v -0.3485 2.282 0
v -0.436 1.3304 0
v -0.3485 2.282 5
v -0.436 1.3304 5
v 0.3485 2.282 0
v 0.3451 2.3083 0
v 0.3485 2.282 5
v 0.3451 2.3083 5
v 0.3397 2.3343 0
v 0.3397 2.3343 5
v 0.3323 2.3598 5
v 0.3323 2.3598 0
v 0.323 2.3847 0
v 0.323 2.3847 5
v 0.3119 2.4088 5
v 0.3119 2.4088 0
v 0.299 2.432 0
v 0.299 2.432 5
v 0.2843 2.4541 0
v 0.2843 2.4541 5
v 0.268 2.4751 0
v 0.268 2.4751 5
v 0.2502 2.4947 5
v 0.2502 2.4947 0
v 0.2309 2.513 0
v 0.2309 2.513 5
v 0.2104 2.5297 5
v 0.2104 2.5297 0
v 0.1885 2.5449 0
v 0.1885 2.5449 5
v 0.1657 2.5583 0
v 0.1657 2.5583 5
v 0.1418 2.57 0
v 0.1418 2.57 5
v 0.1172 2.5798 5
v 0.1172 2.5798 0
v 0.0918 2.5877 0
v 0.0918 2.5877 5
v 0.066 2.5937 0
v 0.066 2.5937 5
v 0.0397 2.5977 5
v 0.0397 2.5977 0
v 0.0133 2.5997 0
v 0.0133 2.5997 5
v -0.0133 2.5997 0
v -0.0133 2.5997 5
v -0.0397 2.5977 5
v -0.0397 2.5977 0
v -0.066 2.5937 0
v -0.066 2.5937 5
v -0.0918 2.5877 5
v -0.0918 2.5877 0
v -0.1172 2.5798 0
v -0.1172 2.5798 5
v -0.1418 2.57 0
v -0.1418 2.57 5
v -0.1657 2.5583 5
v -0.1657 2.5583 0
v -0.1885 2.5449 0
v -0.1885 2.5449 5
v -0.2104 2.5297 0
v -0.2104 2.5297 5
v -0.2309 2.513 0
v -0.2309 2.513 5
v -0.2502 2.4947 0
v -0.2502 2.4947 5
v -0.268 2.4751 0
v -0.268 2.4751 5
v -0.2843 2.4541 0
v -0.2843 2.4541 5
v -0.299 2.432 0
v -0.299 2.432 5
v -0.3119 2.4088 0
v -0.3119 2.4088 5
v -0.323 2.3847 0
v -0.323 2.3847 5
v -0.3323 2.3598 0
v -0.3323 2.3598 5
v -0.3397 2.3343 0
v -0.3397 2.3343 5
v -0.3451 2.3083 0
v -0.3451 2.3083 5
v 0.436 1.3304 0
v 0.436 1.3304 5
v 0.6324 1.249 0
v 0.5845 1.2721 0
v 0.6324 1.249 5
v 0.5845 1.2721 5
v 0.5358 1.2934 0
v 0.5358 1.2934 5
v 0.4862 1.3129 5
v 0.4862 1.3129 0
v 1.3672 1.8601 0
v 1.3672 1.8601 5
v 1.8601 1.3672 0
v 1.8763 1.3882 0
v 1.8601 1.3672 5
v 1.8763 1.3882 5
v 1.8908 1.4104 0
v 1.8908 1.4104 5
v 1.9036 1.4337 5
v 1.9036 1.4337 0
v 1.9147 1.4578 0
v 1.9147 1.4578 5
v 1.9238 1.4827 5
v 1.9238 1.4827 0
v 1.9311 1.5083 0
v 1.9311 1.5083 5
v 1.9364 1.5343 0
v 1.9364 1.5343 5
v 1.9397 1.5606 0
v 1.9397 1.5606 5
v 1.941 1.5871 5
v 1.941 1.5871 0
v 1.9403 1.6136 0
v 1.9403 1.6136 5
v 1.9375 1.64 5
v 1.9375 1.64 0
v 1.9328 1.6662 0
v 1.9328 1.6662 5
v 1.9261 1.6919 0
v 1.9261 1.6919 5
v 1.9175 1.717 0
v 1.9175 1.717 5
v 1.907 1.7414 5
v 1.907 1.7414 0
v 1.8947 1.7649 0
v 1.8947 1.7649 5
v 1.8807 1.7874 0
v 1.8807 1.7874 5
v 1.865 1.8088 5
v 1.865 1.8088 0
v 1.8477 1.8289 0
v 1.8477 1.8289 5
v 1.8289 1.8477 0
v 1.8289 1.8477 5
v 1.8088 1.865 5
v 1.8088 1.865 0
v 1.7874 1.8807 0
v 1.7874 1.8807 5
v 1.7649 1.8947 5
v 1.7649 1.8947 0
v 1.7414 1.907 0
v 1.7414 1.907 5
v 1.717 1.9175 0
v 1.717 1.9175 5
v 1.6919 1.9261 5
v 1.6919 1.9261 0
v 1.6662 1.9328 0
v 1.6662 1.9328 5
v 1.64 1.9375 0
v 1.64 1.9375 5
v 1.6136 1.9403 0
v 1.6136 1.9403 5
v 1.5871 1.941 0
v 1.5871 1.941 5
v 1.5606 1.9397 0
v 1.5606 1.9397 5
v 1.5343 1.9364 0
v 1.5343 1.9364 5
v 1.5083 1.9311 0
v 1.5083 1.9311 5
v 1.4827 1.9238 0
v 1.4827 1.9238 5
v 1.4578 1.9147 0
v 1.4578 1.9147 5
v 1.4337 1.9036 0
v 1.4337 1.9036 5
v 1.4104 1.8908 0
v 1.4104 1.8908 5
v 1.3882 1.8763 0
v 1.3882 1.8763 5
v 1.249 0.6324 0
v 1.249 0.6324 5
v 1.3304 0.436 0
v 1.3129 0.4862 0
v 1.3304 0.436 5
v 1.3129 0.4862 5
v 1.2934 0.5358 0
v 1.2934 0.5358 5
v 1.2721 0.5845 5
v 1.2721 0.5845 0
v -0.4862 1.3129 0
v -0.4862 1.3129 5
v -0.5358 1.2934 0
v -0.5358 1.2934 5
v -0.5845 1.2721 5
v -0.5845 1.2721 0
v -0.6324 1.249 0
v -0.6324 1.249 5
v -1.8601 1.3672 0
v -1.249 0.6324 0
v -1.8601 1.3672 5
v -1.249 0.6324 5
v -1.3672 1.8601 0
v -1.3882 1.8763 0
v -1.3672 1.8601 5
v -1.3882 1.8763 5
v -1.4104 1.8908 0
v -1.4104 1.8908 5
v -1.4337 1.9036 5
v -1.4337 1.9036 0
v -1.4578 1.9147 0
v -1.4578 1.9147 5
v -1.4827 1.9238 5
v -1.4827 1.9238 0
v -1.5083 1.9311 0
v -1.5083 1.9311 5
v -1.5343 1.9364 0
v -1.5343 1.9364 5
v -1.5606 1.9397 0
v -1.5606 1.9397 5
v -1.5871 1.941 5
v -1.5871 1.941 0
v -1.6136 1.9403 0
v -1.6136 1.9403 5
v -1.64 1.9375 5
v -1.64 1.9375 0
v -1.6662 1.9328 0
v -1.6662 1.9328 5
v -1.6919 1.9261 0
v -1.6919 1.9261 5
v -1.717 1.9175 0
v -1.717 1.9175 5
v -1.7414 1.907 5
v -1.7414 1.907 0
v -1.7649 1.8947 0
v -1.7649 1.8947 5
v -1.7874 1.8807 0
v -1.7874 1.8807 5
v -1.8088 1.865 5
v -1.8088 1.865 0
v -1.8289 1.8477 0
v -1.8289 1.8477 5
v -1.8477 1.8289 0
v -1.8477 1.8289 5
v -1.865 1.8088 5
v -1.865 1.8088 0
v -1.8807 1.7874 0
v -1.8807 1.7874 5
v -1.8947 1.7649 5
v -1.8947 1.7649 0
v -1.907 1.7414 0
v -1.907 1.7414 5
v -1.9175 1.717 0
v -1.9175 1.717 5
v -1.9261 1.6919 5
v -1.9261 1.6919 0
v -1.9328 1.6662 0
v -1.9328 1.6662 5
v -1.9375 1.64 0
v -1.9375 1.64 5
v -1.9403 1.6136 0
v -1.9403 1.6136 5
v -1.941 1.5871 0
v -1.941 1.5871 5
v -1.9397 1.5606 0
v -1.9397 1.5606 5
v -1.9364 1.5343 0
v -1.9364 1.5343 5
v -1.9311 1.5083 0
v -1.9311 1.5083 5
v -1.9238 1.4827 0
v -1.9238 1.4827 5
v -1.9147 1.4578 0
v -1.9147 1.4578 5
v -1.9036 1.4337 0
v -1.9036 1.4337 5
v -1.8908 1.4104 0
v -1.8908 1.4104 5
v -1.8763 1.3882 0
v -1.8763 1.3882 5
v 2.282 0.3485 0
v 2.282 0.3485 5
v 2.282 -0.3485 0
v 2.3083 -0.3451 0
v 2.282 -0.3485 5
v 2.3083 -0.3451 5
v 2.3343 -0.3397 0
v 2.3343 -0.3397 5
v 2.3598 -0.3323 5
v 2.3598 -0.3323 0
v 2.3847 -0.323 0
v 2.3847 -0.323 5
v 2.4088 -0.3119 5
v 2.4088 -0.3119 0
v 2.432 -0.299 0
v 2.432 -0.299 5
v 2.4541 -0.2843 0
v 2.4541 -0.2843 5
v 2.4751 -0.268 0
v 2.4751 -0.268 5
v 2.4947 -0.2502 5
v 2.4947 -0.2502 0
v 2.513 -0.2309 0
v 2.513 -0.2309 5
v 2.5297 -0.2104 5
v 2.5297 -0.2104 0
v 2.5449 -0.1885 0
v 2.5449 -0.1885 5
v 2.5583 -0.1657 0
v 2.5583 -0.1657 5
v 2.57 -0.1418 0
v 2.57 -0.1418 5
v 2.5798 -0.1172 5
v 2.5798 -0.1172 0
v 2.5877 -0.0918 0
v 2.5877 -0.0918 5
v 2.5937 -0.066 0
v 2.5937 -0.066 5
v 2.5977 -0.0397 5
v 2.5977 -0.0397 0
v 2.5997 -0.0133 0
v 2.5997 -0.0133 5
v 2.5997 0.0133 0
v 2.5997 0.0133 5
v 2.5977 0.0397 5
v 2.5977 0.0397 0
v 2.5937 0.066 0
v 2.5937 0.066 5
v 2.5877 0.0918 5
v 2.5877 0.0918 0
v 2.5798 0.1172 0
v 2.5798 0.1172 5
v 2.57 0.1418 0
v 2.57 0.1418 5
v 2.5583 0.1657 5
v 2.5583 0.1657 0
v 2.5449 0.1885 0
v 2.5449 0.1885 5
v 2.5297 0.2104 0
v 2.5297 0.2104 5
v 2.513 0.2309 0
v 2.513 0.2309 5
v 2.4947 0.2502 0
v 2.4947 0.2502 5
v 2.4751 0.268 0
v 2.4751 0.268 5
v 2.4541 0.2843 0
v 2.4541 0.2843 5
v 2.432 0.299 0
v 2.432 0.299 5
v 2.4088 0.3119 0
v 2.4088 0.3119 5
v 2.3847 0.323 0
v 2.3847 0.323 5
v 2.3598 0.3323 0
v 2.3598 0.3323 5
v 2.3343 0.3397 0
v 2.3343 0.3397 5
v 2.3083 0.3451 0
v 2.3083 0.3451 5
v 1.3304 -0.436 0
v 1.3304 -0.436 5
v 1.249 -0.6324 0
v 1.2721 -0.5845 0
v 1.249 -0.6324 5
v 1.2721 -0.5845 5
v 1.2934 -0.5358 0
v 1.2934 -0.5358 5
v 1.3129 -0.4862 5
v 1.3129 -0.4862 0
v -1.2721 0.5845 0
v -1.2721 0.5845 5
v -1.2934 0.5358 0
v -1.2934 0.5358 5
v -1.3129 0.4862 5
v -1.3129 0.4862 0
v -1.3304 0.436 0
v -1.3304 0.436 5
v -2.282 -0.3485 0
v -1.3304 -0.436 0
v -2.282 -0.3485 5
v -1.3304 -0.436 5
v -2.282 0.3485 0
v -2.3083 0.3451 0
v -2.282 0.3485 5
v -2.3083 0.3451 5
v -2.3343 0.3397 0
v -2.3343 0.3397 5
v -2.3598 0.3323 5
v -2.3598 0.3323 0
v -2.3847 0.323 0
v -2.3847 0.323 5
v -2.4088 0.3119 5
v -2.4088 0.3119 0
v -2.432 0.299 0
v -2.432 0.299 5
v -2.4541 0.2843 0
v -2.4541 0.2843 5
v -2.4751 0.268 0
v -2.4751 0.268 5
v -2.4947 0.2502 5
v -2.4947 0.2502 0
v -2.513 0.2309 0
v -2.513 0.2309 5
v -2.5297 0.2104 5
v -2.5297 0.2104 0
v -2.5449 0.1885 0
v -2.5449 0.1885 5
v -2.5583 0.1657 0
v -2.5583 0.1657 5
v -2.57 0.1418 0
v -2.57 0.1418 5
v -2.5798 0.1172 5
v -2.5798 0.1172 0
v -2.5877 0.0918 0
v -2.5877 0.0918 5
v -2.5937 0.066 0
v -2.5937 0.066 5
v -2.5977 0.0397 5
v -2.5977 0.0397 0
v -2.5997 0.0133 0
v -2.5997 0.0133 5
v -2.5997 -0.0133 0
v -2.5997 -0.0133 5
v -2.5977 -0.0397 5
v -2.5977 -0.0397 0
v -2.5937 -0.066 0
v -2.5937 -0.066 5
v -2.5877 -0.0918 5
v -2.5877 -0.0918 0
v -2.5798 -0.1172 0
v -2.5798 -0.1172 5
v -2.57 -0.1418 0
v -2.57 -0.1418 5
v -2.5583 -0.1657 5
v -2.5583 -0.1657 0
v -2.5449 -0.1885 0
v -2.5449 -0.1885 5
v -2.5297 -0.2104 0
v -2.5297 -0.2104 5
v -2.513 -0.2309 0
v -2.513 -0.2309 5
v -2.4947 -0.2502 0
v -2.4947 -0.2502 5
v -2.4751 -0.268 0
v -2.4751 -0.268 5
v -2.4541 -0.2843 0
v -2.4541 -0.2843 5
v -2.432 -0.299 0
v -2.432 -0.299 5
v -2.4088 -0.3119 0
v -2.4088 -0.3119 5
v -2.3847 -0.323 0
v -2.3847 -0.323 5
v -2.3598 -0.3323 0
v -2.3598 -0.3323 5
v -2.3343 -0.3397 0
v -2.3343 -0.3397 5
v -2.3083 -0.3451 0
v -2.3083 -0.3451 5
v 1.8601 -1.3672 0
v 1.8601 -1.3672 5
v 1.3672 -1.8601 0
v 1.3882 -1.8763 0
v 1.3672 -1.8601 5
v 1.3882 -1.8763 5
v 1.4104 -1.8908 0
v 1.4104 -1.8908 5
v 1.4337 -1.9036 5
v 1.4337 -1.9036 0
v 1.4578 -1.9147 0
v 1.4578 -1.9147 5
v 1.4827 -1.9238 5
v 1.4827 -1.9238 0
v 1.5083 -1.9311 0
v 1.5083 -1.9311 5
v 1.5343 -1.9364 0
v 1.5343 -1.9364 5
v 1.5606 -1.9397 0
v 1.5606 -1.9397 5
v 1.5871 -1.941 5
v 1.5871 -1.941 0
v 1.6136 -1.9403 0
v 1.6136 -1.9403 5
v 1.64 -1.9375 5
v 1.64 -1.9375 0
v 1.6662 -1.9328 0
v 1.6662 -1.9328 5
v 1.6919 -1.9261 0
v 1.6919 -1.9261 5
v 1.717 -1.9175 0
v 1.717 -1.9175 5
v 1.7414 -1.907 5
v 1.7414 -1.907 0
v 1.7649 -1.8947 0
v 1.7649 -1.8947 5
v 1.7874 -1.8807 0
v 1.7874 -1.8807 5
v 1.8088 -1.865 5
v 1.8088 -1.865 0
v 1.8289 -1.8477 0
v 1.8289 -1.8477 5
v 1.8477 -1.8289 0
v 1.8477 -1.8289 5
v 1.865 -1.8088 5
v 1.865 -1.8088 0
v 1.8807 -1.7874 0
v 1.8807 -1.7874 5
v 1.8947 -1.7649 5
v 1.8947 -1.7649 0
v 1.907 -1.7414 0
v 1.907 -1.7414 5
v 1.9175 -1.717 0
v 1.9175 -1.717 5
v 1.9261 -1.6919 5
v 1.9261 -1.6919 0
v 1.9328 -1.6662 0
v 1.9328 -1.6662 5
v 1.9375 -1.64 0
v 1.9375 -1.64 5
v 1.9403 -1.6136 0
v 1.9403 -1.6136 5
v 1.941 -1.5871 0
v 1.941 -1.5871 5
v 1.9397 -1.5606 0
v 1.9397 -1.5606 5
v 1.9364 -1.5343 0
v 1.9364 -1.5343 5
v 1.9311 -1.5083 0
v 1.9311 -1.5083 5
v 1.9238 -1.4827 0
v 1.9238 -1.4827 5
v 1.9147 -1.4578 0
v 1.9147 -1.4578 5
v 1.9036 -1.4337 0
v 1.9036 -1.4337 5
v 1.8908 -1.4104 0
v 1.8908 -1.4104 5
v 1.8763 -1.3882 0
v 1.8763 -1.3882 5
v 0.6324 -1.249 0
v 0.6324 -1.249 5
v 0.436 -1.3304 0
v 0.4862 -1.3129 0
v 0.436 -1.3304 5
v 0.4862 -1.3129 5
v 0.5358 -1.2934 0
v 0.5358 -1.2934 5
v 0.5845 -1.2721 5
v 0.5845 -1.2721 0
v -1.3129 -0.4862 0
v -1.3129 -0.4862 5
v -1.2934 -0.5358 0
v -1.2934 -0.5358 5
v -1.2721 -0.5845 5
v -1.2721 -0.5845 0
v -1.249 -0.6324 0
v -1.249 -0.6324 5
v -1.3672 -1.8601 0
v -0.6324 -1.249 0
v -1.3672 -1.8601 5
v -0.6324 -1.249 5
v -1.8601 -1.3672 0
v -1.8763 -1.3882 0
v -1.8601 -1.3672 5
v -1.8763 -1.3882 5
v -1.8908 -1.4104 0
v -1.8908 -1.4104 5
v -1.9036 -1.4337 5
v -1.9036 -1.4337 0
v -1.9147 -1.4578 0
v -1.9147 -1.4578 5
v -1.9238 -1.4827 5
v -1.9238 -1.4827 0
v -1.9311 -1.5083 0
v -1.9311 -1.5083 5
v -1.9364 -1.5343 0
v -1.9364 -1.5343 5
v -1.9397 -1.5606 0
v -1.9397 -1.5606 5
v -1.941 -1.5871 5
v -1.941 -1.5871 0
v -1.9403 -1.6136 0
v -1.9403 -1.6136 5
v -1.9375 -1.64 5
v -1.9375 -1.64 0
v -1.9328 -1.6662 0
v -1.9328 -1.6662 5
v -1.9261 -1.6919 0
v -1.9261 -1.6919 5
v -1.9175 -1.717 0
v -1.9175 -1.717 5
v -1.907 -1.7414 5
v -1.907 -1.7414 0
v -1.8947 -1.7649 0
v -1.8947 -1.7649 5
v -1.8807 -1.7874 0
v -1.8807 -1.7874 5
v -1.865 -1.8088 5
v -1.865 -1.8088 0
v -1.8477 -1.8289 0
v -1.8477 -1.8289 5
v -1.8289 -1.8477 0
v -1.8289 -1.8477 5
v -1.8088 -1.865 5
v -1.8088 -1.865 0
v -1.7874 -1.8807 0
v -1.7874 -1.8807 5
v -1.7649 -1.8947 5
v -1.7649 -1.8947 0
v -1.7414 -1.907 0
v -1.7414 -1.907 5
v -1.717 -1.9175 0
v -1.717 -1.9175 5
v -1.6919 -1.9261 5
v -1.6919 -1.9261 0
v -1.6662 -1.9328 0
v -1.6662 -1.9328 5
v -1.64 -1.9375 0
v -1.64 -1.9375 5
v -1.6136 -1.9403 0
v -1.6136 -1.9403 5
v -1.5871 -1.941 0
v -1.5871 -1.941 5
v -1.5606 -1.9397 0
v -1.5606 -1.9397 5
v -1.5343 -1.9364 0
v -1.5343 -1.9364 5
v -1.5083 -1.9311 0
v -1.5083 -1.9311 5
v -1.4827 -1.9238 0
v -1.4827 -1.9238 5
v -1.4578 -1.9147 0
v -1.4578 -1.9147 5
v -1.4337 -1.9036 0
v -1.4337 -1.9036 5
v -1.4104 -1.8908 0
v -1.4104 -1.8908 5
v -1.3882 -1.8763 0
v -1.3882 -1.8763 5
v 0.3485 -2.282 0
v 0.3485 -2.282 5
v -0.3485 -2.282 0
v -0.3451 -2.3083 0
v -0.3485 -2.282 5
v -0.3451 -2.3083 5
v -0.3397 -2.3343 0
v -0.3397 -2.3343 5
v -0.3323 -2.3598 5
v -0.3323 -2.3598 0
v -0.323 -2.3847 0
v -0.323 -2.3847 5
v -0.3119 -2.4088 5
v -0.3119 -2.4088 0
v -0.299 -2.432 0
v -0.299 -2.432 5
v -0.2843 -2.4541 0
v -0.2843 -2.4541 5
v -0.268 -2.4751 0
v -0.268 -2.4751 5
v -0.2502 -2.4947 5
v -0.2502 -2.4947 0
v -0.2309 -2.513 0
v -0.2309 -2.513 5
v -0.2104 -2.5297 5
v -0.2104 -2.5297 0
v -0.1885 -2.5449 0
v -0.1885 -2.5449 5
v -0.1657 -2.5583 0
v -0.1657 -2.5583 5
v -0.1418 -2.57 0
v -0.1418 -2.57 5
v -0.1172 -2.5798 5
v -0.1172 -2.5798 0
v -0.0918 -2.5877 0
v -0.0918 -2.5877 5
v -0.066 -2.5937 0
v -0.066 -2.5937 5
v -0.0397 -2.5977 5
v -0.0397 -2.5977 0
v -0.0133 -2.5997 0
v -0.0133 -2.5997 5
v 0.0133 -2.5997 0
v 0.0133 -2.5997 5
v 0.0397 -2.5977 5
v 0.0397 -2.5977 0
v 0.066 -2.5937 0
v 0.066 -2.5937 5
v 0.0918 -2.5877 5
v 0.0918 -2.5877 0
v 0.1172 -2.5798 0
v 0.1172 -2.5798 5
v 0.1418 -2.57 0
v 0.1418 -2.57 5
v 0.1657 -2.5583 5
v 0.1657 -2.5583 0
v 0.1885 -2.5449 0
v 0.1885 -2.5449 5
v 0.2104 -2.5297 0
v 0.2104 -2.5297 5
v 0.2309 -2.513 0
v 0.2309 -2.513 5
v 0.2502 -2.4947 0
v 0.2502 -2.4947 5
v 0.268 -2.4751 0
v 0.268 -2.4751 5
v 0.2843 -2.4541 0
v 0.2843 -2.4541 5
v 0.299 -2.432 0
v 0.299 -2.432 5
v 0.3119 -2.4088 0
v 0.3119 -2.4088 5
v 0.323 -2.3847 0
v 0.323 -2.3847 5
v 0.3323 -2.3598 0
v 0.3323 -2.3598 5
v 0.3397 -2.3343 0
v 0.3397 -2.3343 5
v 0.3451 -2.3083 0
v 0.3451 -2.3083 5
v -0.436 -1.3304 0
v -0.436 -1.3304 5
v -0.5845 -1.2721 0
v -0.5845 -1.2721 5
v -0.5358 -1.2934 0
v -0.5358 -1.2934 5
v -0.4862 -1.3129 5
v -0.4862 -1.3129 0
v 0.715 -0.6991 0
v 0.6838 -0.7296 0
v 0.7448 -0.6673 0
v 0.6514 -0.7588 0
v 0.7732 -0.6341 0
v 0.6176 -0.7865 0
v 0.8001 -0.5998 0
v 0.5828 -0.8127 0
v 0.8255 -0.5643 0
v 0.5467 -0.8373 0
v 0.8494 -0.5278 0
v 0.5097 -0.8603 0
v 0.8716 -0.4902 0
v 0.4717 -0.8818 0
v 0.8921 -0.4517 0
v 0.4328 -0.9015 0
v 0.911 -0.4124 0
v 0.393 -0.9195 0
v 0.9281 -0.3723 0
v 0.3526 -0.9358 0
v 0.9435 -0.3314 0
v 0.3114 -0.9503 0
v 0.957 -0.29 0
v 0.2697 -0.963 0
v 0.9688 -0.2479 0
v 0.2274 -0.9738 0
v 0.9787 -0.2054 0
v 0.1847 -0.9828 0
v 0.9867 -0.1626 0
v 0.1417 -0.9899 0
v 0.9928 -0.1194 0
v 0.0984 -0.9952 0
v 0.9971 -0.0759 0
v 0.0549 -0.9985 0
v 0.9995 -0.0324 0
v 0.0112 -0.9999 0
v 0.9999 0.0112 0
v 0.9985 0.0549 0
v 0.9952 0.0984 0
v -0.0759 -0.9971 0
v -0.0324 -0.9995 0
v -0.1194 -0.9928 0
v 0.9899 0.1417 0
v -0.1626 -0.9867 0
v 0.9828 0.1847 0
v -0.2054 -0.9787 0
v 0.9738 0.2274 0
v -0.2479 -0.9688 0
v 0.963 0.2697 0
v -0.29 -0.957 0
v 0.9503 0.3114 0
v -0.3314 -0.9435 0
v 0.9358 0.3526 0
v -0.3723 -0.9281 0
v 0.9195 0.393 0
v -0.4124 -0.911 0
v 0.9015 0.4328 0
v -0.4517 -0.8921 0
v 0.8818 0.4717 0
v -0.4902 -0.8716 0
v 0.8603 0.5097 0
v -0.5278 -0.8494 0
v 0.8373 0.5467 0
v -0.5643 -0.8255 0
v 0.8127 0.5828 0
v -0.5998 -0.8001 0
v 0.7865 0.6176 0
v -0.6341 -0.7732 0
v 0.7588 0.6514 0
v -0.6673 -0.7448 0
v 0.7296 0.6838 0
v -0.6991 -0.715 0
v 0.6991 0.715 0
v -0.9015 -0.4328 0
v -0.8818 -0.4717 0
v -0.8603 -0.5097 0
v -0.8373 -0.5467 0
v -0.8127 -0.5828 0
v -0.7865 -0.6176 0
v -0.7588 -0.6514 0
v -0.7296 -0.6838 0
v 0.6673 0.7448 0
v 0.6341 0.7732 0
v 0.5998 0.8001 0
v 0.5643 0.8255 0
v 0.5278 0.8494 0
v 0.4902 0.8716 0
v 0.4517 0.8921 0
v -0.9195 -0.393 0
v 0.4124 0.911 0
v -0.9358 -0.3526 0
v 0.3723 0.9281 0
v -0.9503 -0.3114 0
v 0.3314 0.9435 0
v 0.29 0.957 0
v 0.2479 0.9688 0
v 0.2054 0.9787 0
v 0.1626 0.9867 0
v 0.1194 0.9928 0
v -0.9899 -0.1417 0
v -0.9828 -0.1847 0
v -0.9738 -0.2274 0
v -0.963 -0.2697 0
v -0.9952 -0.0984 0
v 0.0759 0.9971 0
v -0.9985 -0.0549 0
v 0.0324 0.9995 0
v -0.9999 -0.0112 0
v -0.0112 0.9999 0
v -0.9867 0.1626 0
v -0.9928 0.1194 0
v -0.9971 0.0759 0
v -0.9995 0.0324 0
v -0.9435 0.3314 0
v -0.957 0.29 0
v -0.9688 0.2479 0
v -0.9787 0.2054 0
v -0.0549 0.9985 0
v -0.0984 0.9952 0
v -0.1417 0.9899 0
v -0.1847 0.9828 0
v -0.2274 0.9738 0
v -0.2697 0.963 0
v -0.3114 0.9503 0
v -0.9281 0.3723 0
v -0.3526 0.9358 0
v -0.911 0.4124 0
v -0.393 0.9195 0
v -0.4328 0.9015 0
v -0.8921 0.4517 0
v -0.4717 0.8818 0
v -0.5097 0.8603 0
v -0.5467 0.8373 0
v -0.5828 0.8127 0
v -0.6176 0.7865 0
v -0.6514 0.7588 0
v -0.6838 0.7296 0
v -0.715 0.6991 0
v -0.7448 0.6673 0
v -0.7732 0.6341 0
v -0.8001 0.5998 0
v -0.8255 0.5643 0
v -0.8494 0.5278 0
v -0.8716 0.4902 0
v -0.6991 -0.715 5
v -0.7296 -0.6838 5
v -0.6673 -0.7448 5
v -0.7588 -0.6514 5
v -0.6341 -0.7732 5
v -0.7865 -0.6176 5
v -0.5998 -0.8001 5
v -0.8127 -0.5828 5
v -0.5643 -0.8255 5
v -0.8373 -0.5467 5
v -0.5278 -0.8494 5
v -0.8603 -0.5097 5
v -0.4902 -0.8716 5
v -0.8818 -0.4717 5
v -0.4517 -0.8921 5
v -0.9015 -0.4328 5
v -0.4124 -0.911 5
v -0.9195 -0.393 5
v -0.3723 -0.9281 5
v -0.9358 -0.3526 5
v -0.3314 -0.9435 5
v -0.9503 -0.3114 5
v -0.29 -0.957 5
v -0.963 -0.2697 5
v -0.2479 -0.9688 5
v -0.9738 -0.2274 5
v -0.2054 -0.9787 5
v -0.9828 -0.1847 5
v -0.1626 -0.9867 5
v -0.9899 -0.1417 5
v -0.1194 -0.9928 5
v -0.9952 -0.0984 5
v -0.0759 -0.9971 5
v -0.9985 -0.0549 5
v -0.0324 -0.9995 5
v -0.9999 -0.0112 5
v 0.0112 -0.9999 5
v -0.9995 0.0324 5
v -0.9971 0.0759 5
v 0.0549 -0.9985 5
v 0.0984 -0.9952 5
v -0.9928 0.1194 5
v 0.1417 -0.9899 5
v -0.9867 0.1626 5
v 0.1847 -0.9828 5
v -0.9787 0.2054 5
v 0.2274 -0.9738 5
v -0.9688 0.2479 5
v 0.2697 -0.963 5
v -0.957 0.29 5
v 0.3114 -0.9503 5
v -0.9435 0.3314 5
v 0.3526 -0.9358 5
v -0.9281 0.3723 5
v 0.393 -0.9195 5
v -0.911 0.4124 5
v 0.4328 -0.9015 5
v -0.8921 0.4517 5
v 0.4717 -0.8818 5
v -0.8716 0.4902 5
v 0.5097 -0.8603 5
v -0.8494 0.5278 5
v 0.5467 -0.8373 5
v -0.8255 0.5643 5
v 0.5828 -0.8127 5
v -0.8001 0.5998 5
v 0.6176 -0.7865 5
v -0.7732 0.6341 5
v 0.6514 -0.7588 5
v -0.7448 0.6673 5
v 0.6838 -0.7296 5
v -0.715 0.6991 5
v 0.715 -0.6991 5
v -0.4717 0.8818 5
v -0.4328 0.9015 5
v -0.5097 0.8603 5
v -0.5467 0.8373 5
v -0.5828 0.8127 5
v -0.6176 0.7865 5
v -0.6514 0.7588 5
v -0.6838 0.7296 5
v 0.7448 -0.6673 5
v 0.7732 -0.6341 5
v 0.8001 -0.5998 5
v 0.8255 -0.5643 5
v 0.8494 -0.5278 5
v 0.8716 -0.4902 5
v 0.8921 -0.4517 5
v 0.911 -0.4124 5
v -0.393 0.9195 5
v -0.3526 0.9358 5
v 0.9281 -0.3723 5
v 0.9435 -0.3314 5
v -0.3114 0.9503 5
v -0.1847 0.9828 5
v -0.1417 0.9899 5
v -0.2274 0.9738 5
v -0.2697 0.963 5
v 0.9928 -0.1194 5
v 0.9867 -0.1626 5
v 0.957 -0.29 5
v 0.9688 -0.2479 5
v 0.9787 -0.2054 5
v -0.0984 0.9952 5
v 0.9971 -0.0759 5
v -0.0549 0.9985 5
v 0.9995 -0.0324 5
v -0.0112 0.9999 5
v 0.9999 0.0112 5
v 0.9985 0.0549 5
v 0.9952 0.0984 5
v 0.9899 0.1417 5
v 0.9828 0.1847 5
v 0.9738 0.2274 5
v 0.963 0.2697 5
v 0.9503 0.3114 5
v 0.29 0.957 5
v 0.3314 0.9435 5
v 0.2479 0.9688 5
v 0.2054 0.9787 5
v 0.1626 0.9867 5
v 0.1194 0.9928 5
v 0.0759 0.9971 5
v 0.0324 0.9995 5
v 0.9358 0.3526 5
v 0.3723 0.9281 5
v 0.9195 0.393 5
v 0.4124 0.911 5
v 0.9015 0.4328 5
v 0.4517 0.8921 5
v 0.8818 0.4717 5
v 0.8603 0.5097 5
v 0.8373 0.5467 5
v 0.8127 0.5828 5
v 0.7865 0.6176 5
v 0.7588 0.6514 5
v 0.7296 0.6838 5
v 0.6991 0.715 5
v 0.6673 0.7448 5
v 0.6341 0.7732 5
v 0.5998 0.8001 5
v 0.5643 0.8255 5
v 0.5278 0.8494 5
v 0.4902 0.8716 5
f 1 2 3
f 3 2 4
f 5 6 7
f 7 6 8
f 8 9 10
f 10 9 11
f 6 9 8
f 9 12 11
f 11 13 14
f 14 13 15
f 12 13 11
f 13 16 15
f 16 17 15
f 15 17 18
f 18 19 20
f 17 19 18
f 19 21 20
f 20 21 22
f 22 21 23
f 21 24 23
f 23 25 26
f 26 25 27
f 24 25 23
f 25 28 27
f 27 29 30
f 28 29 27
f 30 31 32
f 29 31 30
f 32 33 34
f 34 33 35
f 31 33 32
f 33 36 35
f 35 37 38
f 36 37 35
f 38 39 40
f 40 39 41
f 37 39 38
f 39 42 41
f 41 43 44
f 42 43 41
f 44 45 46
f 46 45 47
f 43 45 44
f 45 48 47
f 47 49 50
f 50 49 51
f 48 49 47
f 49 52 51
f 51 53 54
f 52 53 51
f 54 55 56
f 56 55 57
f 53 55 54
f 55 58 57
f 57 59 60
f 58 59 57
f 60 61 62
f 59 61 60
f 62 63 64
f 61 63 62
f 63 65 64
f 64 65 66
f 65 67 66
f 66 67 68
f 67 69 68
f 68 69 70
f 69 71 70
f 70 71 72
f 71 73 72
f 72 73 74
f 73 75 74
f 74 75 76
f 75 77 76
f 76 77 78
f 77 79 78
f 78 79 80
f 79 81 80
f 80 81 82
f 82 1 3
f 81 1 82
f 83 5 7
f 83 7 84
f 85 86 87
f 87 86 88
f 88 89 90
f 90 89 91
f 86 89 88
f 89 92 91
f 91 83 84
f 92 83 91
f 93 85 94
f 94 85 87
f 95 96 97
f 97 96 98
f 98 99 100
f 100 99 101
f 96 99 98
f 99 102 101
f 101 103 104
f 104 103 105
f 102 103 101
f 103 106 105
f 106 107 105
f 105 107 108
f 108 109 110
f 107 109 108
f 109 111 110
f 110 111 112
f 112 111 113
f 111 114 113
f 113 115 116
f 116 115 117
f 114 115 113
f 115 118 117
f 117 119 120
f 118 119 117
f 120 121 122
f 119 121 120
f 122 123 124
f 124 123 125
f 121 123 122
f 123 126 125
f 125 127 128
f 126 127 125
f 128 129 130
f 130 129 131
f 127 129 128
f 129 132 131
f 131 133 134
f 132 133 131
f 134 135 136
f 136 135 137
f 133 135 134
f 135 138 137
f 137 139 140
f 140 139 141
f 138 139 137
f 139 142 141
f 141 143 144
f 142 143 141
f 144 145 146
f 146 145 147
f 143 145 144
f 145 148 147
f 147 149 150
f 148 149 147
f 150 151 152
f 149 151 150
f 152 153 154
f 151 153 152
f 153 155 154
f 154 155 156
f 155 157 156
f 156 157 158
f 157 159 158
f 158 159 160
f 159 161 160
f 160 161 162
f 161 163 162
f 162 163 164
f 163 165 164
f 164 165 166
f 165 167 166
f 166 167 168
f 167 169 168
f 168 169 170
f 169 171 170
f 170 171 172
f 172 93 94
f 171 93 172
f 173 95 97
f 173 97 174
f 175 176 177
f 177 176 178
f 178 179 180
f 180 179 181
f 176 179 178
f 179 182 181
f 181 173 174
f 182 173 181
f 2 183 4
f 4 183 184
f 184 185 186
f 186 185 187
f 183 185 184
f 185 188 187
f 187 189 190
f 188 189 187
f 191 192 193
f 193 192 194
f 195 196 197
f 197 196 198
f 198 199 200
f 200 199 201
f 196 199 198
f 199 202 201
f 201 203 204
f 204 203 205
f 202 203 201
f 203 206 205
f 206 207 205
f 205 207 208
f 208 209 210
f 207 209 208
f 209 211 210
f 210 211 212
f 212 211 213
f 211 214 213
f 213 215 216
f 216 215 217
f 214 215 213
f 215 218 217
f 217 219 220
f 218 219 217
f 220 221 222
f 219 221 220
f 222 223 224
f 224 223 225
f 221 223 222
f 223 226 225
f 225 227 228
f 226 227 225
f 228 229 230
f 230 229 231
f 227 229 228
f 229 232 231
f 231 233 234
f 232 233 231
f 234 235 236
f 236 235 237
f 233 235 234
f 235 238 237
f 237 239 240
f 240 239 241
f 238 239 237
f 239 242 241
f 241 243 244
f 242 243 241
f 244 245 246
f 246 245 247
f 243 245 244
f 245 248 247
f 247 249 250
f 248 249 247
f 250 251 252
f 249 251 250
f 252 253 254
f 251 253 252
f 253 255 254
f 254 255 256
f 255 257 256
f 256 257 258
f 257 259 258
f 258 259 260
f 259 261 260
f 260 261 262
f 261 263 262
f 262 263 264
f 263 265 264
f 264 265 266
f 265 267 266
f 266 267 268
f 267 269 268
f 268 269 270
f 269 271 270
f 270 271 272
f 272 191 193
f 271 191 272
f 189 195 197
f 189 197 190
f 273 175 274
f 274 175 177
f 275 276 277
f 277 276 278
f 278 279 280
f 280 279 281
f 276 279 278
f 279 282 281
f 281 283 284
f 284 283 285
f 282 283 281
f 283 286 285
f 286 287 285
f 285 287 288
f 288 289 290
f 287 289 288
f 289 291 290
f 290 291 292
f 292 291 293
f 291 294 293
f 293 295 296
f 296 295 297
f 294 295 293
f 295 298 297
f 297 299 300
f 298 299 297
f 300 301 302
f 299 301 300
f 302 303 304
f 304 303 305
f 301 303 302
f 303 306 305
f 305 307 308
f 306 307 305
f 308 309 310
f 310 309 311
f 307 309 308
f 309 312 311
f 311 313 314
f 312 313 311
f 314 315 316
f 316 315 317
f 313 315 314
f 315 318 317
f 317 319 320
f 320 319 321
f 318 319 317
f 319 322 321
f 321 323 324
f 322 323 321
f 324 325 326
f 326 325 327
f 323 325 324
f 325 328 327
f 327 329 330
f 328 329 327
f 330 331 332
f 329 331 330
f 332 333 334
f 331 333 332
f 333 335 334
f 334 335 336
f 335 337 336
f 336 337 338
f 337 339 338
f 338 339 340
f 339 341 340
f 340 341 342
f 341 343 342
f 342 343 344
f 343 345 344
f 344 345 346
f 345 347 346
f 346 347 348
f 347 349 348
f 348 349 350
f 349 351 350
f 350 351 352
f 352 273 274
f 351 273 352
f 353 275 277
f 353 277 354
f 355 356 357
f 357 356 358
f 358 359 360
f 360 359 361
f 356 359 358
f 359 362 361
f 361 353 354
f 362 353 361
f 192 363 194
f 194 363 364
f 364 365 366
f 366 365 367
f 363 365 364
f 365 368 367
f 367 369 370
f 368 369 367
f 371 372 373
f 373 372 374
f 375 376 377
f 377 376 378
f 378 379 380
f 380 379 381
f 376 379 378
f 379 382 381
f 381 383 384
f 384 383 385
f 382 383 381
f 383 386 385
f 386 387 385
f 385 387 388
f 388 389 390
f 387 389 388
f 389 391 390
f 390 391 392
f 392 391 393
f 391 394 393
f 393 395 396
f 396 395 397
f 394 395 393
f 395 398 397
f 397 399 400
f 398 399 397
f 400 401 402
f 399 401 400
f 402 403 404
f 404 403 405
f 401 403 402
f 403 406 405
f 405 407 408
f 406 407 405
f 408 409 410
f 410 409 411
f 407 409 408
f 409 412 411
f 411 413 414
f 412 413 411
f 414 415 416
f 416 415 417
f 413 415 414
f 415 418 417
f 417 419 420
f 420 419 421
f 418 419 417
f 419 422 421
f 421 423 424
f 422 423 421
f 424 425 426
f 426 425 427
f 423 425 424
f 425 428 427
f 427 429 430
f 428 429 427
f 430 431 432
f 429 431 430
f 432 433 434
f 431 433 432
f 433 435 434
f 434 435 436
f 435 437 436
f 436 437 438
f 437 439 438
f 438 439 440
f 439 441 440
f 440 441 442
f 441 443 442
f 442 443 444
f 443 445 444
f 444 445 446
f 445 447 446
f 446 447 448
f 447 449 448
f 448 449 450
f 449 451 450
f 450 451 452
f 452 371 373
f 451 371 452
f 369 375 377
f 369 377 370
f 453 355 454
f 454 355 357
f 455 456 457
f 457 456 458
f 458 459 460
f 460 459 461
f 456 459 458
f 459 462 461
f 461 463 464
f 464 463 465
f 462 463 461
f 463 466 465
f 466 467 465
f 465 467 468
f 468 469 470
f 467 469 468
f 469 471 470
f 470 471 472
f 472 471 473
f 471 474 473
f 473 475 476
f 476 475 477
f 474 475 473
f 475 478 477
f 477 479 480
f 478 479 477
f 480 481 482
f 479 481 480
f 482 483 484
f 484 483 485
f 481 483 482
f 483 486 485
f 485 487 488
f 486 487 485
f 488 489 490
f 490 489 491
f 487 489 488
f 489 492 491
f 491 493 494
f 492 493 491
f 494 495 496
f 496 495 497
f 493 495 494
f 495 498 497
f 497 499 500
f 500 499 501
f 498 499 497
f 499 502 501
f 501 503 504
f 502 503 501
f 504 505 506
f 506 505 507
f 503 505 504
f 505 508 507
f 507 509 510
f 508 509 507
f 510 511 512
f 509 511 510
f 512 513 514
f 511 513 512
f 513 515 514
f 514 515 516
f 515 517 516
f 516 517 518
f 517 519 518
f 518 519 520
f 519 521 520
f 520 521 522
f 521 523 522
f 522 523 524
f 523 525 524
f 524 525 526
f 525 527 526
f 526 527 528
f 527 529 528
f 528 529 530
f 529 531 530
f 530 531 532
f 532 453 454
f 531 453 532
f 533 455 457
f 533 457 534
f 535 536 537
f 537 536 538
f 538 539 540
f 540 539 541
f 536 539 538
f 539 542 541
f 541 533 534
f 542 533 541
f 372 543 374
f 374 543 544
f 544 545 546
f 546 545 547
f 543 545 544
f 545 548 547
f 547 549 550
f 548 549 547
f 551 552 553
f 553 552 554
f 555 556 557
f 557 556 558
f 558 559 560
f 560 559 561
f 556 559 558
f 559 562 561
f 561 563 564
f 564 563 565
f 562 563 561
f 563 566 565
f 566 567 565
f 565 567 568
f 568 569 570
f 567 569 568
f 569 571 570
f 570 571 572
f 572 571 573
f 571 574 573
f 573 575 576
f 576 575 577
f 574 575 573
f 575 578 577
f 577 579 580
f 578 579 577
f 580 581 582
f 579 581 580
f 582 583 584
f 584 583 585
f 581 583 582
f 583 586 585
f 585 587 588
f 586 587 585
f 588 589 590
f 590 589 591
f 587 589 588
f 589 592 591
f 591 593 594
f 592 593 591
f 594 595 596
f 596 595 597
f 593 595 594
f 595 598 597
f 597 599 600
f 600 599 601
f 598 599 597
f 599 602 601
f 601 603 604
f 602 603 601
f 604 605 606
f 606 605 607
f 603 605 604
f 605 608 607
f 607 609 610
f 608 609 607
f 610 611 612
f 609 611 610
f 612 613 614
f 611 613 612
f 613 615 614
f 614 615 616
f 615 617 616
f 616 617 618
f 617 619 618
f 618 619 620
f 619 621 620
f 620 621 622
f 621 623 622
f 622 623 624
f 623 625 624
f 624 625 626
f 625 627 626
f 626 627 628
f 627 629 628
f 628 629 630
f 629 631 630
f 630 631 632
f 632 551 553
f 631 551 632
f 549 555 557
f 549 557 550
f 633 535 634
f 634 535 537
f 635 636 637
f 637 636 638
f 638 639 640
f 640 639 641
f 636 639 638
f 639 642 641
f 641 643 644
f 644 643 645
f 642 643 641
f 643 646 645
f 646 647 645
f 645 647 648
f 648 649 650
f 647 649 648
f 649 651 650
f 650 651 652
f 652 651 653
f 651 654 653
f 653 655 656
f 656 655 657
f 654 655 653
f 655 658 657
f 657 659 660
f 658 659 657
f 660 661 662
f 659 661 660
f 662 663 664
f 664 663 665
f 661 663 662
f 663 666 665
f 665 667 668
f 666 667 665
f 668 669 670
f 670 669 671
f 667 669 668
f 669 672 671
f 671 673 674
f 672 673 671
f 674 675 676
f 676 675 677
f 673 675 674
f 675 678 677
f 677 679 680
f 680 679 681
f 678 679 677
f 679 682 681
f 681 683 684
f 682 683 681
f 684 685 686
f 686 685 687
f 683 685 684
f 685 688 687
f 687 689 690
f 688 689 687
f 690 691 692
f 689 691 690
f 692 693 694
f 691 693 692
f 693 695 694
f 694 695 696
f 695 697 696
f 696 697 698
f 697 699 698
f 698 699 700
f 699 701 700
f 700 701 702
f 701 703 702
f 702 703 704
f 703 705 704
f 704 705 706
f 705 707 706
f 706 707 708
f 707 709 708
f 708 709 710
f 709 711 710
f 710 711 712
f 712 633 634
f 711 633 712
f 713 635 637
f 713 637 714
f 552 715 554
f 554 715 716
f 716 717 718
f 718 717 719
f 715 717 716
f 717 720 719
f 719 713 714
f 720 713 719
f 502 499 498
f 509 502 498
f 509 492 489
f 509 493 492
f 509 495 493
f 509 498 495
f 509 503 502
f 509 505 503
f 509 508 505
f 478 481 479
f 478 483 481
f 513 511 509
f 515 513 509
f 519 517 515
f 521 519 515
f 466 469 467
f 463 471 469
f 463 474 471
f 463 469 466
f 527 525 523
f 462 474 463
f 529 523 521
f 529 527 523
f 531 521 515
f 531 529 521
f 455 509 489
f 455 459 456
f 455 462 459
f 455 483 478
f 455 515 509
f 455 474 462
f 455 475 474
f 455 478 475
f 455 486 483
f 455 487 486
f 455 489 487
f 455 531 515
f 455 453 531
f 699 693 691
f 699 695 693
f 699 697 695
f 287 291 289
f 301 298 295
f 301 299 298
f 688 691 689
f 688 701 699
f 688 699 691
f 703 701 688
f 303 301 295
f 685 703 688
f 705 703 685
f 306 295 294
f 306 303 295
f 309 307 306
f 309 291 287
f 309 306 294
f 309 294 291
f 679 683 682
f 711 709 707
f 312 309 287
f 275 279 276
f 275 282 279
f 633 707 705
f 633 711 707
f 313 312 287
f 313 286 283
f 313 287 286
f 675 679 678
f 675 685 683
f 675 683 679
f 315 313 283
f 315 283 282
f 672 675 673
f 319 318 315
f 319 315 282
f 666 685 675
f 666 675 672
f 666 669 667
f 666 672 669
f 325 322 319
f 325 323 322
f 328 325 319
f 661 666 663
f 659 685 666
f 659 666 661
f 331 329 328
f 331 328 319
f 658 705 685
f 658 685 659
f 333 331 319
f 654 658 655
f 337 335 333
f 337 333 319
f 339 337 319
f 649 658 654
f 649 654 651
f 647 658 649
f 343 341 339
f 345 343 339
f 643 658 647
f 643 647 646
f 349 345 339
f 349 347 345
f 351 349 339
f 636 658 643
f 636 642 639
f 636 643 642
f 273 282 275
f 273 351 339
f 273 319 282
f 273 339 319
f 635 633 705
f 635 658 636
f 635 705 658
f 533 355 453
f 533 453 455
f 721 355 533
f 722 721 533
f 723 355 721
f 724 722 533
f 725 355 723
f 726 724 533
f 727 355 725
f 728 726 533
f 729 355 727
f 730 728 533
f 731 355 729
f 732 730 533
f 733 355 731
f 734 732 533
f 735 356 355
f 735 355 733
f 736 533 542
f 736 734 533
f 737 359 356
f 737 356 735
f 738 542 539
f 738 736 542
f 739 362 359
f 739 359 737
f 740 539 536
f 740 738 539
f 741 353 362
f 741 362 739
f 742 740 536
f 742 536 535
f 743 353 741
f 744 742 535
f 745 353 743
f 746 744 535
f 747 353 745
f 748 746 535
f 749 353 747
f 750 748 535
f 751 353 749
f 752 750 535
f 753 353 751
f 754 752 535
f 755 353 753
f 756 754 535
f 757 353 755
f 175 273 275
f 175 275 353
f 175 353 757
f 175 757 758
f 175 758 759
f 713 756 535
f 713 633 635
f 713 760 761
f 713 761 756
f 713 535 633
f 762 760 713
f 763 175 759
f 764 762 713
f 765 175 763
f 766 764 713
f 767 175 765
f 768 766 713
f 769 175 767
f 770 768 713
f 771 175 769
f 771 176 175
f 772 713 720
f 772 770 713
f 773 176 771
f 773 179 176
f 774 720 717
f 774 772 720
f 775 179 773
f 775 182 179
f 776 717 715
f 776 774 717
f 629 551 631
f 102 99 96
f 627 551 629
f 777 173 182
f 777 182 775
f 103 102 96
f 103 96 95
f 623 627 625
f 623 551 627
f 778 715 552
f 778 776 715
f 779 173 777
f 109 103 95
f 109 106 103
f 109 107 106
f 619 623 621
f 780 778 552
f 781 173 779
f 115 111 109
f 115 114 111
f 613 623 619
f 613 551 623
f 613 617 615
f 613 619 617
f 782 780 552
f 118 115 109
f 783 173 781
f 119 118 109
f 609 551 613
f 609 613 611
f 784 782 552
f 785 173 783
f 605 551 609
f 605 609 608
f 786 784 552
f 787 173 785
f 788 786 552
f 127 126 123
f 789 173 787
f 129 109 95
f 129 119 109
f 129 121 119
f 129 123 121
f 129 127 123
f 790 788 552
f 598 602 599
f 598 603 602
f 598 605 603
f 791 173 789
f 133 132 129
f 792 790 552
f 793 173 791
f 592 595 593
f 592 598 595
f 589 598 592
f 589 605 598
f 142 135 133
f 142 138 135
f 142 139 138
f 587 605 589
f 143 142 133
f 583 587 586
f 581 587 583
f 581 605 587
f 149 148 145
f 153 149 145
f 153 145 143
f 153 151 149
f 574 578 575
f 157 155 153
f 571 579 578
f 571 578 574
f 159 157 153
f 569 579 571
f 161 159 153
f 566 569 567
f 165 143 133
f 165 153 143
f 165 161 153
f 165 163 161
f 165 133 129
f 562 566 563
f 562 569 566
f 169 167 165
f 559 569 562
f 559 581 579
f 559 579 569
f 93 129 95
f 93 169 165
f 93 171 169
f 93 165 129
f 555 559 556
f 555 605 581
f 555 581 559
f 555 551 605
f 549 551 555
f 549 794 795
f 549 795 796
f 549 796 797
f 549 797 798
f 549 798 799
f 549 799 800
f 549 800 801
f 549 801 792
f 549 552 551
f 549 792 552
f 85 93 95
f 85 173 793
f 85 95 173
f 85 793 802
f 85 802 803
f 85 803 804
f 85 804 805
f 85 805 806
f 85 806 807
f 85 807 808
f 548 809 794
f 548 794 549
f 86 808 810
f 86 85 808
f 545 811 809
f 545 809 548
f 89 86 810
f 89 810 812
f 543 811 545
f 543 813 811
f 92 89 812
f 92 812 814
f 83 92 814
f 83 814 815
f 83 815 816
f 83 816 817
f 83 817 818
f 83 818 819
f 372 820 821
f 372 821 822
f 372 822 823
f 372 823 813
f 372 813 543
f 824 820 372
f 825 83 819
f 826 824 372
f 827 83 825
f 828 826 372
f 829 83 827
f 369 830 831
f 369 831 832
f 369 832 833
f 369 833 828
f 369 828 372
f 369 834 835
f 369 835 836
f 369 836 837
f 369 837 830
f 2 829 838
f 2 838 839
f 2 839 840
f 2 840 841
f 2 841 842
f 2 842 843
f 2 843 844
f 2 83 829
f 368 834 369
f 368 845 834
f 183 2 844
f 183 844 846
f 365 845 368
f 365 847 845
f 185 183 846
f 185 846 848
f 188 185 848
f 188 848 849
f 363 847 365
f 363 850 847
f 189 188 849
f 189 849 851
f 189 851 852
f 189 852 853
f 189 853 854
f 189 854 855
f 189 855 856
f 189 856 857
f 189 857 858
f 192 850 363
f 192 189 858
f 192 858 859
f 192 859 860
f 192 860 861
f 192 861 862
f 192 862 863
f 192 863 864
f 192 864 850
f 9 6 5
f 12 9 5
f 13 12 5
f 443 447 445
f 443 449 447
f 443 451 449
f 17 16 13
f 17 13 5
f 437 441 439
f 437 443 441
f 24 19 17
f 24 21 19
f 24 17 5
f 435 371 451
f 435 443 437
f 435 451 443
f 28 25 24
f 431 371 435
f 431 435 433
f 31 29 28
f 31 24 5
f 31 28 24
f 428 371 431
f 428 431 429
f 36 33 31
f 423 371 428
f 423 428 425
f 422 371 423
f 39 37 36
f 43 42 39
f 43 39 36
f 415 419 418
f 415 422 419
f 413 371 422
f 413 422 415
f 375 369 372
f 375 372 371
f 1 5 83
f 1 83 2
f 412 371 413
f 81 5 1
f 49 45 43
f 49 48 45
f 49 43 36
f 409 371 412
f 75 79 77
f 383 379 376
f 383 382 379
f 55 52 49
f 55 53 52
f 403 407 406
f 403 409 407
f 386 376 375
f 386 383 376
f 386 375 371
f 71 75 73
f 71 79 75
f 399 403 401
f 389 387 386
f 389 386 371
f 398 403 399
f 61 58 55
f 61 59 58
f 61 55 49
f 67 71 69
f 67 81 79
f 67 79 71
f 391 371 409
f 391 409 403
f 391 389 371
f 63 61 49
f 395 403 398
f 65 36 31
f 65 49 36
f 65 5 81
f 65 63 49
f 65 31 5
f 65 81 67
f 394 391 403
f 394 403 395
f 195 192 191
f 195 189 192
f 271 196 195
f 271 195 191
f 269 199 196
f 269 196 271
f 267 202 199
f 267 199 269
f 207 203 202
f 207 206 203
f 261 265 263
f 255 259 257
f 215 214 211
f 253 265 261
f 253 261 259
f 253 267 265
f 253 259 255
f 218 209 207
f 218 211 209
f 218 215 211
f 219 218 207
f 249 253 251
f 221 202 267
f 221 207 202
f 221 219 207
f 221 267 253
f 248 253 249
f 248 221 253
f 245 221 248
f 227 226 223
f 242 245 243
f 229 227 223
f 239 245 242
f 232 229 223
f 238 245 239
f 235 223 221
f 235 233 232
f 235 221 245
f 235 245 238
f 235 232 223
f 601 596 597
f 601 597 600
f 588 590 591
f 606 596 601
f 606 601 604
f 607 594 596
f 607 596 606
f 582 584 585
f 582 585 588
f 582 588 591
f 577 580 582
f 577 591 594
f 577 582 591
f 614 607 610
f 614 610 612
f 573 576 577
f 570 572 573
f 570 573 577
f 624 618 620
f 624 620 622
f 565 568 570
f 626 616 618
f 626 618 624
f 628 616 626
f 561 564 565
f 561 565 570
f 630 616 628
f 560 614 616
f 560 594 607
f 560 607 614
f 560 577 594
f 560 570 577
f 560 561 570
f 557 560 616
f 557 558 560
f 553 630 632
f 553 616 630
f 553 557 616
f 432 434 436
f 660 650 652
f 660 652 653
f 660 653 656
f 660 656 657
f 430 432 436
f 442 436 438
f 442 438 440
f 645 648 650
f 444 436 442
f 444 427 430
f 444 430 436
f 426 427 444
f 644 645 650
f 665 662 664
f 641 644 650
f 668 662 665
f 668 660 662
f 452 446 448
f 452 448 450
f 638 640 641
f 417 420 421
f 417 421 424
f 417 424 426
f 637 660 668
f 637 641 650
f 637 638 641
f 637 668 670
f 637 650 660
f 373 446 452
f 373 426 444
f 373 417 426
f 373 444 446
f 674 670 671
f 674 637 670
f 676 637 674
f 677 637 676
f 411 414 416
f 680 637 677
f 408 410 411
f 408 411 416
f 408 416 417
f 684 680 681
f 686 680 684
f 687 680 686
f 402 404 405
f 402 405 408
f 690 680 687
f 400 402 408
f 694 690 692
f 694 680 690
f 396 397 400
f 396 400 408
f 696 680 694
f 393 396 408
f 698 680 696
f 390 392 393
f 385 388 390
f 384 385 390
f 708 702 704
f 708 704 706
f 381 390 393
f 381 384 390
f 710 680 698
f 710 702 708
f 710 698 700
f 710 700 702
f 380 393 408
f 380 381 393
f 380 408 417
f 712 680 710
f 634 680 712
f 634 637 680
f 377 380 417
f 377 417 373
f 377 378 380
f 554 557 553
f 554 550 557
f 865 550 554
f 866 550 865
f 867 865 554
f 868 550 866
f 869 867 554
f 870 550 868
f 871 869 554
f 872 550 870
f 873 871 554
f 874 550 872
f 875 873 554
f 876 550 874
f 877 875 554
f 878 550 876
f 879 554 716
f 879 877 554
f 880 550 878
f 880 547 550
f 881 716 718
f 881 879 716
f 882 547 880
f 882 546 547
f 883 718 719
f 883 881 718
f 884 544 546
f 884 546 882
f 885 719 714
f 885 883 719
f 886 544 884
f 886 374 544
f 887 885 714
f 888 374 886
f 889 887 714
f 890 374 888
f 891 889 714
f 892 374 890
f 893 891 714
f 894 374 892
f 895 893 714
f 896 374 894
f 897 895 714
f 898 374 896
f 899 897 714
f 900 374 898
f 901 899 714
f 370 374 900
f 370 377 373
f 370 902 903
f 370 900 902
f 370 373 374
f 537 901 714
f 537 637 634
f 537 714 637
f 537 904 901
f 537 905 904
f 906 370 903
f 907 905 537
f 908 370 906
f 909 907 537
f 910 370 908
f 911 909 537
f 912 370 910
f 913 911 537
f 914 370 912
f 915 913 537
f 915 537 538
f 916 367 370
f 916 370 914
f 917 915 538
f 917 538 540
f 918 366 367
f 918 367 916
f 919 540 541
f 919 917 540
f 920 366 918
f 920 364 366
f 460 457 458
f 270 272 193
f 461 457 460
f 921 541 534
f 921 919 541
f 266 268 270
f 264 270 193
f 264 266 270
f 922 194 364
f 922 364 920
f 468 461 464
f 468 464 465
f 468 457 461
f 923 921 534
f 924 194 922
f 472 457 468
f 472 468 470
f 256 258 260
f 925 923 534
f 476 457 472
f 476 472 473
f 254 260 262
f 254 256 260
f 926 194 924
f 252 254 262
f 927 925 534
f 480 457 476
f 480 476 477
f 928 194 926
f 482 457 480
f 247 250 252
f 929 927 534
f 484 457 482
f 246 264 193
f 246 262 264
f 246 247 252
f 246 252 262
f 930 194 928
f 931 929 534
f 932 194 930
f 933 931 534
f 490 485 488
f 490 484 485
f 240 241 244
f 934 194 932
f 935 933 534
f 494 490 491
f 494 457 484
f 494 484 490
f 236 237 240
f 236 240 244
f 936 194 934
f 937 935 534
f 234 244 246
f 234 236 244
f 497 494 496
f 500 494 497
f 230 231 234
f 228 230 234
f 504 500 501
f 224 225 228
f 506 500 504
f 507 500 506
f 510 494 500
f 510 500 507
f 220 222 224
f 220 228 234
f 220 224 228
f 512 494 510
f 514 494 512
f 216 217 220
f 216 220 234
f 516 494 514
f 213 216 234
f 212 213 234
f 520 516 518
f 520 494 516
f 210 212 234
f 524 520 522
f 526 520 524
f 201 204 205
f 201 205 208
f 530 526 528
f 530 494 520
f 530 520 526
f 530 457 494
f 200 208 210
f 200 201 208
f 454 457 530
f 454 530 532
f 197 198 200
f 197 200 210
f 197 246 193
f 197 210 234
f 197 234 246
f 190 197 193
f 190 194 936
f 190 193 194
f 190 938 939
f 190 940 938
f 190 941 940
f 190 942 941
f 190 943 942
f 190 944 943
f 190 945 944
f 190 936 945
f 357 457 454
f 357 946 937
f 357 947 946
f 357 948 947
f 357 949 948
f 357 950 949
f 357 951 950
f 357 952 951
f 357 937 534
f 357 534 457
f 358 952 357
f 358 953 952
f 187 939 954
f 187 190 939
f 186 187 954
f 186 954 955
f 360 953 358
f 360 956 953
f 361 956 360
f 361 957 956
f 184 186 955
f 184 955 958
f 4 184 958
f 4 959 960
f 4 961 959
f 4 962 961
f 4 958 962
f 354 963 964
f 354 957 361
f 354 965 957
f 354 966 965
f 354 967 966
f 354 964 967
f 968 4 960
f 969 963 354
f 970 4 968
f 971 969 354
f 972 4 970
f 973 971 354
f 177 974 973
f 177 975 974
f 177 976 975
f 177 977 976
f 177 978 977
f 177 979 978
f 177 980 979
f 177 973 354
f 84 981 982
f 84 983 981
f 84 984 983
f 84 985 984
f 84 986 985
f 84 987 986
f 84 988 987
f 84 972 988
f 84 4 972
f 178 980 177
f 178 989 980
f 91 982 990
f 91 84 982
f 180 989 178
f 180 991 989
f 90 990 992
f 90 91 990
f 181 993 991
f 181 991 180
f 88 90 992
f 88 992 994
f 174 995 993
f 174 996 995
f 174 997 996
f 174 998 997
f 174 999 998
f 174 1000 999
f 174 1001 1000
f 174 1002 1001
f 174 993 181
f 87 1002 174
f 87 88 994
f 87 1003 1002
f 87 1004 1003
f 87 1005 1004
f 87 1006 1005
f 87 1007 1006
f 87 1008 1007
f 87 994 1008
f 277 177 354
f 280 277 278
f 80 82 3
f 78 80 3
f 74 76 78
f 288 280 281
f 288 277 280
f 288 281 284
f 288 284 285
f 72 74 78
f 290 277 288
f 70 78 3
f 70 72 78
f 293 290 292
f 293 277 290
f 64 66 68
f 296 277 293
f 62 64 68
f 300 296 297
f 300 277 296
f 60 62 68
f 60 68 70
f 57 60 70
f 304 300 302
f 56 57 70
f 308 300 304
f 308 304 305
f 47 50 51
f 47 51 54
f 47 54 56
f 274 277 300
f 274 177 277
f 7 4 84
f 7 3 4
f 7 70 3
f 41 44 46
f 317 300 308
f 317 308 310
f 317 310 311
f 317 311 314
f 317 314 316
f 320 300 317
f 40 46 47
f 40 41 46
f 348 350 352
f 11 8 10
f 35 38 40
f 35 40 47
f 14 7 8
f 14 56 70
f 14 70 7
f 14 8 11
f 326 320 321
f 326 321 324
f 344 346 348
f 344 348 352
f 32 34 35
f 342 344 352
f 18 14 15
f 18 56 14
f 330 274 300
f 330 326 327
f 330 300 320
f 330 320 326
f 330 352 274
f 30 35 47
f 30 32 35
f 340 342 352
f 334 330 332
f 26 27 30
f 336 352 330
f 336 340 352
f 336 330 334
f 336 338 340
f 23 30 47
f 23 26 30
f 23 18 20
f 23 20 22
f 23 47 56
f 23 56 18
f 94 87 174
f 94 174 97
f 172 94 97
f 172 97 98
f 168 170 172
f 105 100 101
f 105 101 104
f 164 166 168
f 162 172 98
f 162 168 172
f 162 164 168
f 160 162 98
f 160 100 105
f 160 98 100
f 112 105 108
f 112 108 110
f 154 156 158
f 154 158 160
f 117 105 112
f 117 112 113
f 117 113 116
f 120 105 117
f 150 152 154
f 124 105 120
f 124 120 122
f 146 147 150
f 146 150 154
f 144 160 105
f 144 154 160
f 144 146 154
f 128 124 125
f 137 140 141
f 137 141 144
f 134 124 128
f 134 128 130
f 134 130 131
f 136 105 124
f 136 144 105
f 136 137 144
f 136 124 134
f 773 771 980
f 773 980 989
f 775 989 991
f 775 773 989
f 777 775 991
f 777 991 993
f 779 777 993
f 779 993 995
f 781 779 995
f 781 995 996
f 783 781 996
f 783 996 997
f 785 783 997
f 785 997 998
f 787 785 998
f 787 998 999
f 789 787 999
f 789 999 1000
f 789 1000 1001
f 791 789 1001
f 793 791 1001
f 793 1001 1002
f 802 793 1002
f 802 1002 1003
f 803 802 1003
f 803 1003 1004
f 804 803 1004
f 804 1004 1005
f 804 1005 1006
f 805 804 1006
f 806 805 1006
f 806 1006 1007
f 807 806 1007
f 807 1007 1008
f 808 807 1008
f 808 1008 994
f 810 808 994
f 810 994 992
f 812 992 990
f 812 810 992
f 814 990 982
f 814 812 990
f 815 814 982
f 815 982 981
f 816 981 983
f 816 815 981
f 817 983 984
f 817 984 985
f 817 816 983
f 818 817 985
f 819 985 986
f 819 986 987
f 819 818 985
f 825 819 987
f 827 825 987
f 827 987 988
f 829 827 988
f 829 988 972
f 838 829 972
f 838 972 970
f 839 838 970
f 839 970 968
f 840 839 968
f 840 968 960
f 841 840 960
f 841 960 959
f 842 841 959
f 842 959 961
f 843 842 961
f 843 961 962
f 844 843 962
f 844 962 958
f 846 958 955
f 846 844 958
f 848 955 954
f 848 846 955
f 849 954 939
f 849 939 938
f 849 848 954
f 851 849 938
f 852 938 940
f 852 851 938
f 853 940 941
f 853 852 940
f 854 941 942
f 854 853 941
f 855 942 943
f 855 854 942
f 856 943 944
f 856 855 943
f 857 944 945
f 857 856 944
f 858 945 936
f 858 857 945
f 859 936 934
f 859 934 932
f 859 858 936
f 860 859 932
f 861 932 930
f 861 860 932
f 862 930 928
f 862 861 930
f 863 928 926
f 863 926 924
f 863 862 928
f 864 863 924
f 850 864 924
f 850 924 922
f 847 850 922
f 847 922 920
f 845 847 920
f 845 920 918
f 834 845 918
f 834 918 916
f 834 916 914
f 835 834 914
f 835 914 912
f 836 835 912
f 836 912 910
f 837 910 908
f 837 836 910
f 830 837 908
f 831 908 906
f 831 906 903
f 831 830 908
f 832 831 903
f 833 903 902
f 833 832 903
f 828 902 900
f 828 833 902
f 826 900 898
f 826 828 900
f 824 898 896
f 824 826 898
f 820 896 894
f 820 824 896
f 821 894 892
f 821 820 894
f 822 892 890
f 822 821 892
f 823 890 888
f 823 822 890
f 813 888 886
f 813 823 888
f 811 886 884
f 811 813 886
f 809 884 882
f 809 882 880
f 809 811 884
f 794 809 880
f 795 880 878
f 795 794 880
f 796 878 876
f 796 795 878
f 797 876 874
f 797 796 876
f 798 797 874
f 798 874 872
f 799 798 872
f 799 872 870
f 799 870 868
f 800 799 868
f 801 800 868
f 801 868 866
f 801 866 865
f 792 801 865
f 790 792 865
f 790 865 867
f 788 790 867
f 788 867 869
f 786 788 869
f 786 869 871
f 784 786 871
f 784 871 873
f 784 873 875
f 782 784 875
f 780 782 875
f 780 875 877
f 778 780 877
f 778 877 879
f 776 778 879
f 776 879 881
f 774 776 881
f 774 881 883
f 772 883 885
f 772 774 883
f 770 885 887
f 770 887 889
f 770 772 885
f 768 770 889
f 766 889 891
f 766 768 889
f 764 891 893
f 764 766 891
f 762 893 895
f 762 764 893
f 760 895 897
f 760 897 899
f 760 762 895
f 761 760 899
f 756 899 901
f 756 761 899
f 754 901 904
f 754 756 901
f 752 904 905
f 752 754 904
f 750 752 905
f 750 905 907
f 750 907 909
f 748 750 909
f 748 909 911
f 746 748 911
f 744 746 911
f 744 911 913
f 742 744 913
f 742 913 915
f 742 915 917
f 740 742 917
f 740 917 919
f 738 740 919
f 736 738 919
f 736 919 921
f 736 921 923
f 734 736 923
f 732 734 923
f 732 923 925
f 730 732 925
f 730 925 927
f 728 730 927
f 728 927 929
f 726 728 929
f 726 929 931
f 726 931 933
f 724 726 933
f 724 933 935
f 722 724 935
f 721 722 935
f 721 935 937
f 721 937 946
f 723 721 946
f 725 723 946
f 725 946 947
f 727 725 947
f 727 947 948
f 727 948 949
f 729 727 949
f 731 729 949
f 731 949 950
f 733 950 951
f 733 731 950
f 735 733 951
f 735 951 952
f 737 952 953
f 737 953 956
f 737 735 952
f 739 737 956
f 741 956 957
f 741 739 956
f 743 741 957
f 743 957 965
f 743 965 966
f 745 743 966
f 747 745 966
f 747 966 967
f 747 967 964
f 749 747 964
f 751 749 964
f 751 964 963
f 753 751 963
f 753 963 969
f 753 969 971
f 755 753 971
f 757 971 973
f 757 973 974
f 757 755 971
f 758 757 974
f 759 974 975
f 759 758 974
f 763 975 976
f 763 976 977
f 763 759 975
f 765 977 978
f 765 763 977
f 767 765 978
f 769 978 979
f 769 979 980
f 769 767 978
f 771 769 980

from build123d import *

# Parameters (mm, degrees)
PAD_DEPTH          = 5
POLARPATTERN_COUNT = 8


with BuildPart() as part:
    # Sketch → Pad (new body)
    with BuildSketch(Plane.XY):
        with BuildLine():
            ThreePointArc((0.451745, 0.892147), (0.075949, 0.997112), (-0.311411, 0.950275))
            Line((-0.435975, 1.330386), (-0.311411, 0.950275))
            Line((-0.348532, 2.282026), (-0.435975, 1.330386))
            ThreePointArc((0.348532, 2.282026), (0, 2.6), (-0.348532, 2.282026))
            Line((0.348532, 2.282026), (0.435975, 1.330386))
            ThreePointArc((0.632444, 1.249006), (0.535757, 1.293431), (0.435975, 1.330386))
            Line((0.632444, 1.249006), (0.451745, 0.892147))
        make_face()
    pad = extrude(amount=PAD_DEPTH)

    # PolarPattern: Pad ×8 about axis
    polarpattern_axis = Axis((0, 0, 0), (0, 0, 1))
    for i in range(1, POLARPATTERN_COUNT):
        add(pad.rotate(polarpattern_axis, i * 360 / POLARPATTERN_COUNT))


solid = part.part
